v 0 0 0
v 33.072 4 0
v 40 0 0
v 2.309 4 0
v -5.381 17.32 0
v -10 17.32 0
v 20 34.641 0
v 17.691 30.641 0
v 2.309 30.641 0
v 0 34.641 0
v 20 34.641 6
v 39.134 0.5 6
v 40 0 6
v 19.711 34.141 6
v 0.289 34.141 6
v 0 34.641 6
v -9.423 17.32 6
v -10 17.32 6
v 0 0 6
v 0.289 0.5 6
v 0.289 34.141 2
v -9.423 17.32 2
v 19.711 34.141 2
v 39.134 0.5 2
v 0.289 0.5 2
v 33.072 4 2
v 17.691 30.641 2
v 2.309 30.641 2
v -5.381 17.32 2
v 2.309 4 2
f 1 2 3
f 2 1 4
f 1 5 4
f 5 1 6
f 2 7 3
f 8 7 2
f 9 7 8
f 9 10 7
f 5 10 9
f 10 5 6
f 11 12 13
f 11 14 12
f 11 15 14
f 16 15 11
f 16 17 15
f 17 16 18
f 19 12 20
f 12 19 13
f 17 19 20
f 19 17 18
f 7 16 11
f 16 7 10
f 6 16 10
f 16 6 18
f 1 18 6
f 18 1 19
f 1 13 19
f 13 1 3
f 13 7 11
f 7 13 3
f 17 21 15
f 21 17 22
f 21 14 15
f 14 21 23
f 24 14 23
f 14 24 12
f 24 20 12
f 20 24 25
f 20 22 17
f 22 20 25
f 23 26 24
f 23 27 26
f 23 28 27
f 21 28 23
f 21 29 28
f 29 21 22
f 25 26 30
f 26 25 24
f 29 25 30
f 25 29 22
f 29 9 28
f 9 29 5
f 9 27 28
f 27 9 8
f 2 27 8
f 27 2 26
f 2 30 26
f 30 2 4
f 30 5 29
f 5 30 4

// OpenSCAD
// file: Type6-tiles.scad
use <../lib/tile_fns-v19.scad>


/* Type 6 
   Kershner 1968
   
   a=d=e
   b=c
   B+D=180
   2B=E
   
   parameters : B
   
     B = 1,29 concave, 30-90 convex, 91-141 concave

   solution by trig
   
*/

function Type6(B) =
    let(a=2*sin(B/2)/sqrt(1+4*cos(B/2)*cos(B/2) - 4*cos(B/2)*cos(3*B/2)))
    let(gamma = asin(a*sin(3*B/2)/(2*sin(B/2))))
    let(C= 90 + gamma)    
    [[1,B],[1,C],[a,180-B],[a,2*B],[a,360-2*B-C]];

function Type6_tiles(B,n,m)=
let(peri=Type6(B))
let(tile=peri_to_tile(peri))

let(assembly = [
    [[0,0]],
    [[0,1],[0,1]],
    [[0,1],[1,0]],
    [[0,0],[2,0]]
    ])
let(unit = group_tiles([tile],assembly))

let(dy=tile_offset(unit,[0,0],[3,1]))
let(dx=tile_offset(unit,[0,4],[1,4]))

tesselate_tiles(unit,n,m,dx,dy);
// main file
use <../lib/tile_fns-v19.scad>
use <../pentagonal-tiles/Type6-tiles.scad>

scale=40;
inset=0.5;
n=1;
m=1;
B=60;
tiles =Type6_tiles(B,n,m);
echo(tiles);
tile =scale_tiles(flatten(tiles),scale)[0];


    linear_extrude(height=6)
        difference(){
           fill_tile(tile);
           fill_tile(inset_tile(tile,inset));
        }
    linear_extrude(height=2)
       difference(){
           fill_tile(tile);
           fill_tile(inset_tile(tile,inset*8));
        } 
